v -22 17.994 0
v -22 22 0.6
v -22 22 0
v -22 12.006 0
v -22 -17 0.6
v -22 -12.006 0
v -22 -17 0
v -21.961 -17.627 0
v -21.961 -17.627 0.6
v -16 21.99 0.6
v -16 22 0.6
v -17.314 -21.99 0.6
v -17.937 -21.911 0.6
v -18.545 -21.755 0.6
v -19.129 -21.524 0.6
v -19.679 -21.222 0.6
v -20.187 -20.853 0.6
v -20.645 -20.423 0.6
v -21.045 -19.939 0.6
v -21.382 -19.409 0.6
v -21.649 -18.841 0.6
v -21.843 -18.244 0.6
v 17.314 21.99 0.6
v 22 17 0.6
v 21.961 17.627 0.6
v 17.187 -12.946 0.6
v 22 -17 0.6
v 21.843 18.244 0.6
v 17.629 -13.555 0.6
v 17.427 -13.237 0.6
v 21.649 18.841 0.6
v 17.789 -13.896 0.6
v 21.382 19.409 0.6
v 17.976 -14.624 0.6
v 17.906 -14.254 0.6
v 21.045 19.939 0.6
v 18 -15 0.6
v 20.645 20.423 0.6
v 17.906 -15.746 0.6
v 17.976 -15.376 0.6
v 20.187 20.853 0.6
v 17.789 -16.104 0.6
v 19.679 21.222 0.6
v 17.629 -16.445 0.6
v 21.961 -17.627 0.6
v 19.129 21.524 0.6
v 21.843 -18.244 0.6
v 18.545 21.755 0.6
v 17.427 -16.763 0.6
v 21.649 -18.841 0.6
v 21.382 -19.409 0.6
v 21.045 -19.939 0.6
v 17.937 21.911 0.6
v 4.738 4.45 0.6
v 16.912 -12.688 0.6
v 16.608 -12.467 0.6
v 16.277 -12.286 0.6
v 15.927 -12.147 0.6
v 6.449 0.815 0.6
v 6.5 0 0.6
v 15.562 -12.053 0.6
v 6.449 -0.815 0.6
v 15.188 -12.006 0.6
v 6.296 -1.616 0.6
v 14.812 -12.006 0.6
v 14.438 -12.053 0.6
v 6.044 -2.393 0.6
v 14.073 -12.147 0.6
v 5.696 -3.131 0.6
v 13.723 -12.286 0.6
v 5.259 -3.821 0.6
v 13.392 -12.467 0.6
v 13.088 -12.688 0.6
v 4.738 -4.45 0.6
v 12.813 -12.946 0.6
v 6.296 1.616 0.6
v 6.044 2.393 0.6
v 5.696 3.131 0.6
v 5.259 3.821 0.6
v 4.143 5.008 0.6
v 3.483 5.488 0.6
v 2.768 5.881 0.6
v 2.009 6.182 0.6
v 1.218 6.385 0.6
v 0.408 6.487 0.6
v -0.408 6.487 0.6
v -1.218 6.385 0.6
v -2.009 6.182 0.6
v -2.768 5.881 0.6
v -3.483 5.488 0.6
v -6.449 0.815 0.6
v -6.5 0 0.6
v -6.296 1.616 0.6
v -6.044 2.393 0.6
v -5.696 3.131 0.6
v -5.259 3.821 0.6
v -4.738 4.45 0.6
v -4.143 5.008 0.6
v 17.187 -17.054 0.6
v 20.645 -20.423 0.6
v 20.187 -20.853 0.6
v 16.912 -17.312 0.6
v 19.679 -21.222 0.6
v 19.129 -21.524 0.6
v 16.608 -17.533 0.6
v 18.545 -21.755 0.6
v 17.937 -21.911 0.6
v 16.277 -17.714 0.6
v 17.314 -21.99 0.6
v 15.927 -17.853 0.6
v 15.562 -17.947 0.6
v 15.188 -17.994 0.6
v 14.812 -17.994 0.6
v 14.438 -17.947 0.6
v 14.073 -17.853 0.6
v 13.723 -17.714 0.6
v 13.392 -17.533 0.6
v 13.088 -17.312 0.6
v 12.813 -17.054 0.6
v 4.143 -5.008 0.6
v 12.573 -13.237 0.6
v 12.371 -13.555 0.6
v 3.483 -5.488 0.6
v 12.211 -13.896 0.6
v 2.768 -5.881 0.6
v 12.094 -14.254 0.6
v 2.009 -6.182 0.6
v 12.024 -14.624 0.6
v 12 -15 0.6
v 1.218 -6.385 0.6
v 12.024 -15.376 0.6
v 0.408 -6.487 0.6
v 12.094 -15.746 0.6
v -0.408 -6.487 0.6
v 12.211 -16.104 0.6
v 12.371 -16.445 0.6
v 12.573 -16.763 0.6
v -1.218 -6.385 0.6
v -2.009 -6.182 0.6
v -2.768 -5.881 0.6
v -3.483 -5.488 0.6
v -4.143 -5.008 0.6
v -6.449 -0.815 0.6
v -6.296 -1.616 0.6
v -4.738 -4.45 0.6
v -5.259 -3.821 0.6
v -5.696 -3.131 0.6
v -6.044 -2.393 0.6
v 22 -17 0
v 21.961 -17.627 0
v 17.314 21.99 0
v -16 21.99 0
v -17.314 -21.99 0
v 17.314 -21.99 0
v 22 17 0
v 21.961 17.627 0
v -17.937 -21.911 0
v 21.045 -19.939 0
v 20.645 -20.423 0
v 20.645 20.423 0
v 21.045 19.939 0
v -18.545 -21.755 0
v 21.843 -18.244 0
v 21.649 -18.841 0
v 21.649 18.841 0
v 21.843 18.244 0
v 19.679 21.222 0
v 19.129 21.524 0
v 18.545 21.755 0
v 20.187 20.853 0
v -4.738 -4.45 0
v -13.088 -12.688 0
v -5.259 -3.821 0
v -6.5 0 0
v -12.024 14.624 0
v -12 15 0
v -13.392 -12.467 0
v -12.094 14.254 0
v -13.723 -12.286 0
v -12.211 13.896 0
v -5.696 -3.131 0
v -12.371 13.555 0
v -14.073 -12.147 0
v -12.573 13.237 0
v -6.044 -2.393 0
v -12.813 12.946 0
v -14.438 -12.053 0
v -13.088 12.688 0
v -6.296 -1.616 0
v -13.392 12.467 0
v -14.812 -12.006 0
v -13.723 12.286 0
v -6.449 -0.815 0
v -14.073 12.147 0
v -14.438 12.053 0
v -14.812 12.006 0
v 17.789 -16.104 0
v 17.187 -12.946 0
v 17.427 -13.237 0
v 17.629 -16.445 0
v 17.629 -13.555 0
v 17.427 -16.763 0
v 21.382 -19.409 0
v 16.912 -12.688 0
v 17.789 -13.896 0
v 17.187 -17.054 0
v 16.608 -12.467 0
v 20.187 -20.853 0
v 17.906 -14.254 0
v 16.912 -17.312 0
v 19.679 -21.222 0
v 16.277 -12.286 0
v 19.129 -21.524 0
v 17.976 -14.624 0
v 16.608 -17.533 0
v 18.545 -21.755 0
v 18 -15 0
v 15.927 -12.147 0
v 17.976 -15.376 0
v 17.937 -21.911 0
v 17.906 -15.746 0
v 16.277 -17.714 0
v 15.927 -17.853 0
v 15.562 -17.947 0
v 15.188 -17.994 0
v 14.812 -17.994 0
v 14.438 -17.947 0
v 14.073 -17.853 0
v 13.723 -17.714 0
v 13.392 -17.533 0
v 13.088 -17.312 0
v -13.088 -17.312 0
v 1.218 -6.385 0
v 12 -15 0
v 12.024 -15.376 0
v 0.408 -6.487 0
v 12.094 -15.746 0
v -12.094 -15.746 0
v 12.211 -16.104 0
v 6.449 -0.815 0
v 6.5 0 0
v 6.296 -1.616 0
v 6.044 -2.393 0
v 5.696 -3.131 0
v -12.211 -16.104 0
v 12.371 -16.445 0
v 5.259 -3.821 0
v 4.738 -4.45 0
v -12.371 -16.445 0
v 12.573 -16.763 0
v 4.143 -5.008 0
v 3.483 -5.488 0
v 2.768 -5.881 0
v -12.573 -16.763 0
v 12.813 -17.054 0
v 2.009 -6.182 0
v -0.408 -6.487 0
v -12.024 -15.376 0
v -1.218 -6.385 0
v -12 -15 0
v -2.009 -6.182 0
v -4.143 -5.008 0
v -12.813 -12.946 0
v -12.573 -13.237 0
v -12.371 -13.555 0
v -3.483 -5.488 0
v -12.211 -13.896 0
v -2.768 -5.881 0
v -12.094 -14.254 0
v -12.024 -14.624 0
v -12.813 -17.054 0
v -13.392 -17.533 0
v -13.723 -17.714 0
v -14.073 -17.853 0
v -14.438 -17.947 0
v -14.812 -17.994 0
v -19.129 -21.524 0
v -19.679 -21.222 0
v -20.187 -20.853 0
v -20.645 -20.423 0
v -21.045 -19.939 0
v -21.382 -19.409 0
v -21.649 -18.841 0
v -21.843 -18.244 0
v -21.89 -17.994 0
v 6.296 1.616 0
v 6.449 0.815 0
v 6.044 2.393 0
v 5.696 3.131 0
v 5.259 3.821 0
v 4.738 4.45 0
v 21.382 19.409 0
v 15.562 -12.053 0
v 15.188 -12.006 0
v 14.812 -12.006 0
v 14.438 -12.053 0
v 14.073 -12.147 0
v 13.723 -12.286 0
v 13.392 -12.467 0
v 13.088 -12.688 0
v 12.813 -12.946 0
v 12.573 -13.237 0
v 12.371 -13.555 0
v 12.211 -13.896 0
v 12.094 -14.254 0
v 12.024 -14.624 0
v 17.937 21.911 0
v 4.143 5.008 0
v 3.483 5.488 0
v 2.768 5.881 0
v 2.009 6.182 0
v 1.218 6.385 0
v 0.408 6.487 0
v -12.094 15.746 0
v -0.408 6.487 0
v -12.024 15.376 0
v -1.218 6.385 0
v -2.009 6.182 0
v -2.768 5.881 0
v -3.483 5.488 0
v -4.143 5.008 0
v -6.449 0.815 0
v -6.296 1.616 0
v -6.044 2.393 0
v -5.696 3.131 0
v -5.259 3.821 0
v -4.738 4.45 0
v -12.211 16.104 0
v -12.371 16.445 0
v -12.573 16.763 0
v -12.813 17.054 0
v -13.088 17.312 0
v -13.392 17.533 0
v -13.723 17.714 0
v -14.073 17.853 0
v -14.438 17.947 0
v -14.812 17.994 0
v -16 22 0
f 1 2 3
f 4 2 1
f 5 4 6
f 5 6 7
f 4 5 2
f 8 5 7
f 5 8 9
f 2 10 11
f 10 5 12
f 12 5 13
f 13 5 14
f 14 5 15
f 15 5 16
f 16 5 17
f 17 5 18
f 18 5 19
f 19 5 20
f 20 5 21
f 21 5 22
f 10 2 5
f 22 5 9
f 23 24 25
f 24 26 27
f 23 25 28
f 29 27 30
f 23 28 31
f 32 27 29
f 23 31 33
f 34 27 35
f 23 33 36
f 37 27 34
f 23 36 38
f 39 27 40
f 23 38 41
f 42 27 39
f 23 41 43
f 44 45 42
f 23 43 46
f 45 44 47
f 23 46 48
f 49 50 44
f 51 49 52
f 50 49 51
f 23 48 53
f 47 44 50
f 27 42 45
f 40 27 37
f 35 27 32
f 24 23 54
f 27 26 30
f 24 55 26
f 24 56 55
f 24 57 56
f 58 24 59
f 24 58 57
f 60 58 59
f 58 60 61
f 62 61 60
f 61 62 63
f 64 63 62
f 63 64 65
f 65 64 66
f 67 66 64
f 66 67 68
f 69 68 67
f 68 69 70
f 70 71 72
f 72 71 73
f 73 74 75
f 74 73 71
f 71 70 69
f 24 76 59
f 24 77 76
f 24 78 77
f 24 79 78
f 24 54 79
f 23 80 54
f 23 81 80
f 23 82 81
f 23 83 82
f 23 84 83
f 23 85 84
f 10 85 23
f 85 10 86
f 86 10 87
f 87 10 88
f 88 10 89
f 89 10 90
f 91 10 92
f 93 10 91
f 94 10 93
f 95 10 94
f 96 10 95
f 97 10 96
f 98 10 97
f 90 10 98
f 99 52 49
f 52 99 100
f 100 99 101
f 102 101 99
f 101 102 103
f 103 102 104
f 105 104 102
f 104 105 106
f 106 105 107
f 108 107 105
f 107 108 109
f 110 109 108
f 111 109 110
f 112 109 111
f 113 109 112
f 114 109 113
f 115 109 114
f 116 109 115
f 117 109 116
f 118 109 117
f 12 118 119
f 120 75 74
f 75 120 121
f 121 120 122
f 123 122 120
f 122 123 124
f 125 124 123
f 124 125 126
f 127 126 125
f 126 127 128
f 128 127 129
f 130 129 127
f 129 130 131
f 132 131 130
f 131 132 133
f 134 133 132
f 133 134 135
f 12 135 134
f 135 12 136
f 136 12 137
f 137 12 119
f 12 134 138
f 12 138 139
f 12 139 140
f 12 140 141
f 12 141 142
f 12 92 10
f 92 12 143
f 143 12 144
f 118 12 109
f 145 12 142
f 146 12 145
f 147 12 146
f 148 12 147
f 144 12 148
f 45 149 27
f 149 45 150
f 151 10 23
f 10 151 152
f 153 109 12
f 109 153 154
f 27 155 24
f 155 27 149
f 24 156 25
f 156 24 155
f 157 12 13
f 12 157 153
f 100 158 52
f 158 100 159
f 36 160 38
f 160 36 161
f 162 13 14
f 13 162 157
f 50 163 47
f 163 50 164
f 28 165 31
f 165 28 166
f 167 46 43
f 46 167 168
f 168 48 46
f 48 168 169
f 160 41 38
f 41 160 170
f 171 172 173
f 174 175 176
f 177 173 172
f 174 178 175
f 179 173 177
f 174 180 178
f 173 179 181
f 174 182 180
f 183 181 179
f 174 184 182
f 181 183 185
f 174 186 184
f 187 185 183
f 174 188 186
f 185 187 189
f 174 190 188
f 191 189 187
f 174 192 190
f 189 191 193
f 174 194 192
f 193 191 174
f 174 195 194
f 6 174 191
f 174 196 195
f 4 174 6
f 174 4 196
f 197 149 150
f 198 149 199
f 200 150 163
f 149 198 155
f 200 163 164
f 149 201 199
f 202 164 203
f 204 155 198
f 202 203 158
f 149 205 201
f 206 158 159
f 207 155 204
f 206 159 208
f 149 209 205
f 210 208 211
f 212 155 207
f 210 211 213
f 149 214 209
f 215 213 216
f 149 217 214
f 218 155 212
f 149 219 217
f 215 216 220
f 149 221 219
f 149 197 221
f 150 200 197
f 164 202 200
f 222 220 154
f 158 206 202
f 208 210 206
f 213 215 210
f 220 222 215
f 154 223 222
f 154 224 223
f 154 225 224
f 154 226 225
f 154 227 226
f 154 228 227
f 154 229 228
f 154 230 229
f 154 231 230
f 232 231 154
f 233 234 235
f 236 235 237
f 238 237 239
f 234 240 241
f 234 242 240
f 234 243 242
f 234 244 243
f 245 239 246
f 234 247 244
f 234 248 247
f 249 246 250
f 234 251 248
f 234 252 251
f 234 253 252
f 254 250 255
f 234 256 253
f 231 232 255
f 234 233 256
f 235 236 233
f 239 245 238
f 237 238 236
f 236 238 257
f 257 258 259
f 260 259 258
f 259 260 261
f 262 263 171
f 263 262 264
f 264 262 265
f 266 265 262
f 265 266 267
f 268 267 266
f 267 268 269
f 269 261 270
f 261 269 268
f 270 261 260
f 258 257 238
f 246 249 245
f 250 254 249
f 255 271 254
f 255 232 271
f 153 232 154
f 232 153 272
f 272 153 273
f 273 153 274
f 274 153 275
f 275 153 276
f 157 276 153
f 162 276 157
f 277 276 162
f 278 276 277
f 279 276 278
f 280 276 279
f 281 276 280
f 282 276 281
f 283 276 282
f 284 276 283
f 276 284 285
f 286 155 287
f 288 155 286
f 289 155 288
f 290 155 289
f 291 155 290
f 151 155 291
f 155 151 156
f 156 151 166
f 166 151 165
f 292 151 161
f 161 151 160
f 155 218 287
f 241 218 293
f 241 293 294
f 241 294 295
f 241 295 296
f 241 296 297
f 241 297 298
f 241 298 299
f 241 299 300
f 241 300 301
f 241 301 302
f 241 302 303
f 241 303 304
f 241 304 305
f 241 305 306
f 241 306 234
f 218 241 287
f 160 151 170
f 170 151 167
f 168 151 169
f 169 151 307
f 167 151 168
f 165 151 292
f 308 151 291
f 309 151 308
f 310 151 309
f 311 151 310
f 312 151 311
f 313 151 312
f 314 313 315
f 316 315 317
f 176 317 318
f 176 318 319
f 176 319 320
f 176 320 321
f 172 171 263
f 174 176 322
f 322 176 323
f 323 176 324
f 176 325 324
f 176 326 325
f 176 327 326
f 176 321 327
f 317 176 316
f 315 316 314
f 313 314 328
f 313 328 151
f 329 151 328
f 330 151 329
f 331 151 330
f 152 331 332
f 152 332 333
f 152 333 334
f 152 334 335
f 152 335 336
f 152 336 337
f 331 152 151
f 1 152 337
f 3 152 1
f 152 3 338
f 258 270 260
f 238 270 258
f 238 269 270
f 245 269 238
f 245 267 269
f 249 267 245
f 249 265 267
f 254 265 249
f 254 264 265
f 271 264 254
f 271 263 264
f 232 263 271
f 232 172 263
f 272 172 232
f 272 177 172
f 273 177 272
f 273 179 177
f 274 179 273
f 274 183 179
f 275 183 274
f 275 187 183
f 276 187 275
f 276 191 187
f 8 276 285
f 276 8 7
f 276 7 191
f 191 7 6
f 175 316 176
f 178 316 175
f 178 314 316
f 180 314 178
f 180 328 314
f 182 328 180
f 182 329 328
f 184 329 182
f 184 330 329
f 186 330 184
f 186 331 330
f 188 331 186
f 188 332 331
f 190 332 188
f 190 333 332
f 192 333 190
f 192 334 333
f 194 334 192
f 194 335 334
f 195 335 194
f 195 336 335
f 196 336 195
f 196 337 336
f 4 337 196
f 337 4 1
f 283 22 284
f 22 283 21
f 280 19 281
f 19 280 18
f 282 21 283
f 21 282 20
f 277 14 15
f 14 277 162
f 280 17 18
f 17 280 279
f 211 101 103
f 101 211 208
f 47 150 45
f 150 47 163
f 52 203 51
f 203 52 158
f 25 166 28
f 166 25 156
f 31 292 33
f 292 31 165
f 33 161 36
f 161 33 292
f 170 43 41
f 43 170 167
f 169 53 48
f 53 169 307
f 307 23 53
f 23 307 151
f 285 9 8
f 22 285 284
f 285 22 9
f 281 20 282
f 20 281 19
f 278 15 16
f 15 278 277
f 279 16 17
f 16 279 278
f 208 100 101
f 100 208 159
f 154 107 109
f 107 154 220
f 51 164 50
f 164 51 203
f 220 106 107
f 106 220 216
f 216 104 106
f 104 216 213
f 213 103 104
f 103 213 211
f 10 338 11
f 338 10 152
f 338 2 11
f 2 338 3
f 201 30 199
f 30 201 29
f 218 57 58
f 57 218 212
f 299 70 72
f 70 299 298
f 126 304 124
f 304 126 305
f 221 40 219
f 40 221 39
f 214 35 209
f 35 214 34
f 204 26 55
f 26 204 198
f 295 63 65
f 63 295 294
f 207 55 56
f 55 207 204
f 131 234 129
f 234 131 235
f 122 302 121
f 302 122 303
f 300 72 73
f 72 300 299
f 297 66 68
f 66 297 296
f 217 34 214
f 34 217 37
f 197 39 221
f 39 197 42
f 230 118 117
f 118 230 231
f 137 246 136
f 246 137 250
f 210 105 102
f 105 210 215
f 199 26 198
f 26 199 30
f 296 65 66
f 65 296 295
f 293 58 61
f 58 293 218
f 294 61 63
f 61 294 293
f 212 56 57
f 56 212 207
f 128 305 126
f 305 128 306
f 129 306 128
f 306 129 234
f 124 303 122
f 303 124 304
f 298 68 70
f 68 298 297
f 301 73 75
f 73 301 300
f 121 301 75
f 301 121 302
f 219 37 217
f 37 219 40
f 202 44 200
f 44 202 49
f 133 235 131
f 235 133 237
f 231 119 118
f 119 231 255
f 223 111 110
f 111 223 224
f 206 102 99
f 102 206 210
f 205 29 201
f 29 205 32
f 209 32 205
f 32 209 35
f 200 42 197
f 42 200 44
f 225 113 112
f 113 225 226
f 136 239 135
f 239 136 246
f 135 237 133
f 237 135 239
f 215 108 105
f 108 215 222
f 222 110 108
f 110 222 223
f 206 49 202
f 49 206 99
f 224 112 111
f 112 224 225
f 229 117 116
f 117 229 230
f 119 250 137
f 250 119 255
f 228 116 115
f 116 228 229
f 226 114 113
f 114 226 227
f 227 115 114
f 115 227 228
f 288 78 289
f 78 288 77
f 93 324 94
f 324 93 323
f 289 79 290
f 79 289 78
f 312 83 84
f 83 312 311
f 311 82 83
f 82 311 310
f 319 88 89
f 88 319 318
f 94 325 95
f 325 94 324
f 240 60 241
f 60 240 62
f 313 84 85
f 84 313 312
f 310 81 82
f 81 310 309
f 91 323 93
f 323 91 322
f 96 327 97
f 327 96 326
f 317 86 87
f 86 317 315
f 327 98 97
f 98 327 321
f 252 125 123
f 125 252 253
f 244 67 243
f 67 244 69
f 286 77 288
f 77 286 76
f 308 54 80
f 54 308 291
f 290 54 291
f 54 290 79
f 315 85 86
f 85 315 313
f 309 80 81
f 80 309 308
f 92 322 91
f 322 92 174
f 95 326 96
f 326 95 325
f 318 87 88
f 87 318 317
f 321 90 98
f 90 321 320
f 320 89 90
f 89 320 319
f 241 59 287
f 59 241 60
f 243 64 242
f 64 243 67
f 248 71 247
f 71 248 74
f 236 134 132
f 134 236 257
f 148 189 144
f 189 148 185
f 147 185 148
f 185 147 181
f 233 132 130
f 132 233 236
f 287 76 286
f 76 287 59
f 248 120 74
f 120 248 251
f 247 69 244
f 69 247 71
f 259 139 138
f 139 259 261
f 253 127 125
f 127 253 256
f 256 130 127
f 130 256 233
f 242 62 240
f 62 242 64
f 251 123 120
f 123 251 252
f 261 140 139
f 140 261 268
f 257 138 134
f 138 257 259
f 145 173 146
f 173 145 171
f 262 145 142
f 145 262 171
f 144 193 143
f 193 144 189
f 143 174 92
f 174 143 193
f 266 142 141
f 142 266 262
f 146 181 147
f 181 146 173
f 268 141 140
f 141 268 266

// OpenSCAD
$fn = 50;


difference() {
	union() {
		hull() {
			translate(v = [-17.0000000000, 17.0000000000, 0]) {
				cylinder(h = 0.6000000000, r = 5);
			}
			translate(v = [17.0000000000, 17.0000000000, 0]) {
				cylinder(h = 0.6000000000, r = 5);
			}
			translate(v = [-17.0000000000, -17.0000000000, 0]) {
				cylinder(h = 0.6000000000, r = 5);
			}
			translate(v = [17.0000000000, -17.0000000000, 0]) {
				cylinder(h = 0.6000000000, r = 5);
			}
		}
		translate(v = [-22.0000000000, 16.0000000000, 0]) {
			cube(size = [6, 6, 0.6000000000]);
		}
	}
	union() {
		translate(v = [-22.5000000000, -15.0000000000, -250.0000000000]) {
			rotate(a = [0, 0, 0]) {
				difference() {
					union() {
						hull() {
							translate(v = [7.5000000000, 0, 0]) {
								cylinder(h = 250, r = 3.0000000000, r1 = 3.0000000000, r2 = 3.0000000000);
							}
							translate(v = [-7.5000000000, 0, 0]) {
								cylinder(h = 250, r = 3.0000000000, r1 = 3.0000000000, r2 = 3.0000000000);
							}
						}
					}
					union();
				}
			}
		}
		translate(v = [-22.5000000000, 15.0000000000, -250.0000000000]) {
			rotate(a = [0, 0, 0]) {
				difference() {
					union() {
						hull() {
							translate(v = [7.5000000000, 0, 0]) {
								cylinder(h = 250, r = 3.0000000000, r1 = 3.0000000000, r2 = 3.0000000000);
							}
							translate(v = [-7.5000000000, 0, 0]) {
								cylinder(h = 250, r = 3.0000000000, r1 = 3.0000000000, r2 = 3.0000000000);
							}
						}
					}
					union();
				}
			}
		}
		translate(v = [15.0000000000, -15.0000000000, -50.0000000000]) {
			cylinder(h = 100, r = 3.0000000000);
		}
		cylinder(h = 0.6000000000, r = 6.5000000000);
	}
}
